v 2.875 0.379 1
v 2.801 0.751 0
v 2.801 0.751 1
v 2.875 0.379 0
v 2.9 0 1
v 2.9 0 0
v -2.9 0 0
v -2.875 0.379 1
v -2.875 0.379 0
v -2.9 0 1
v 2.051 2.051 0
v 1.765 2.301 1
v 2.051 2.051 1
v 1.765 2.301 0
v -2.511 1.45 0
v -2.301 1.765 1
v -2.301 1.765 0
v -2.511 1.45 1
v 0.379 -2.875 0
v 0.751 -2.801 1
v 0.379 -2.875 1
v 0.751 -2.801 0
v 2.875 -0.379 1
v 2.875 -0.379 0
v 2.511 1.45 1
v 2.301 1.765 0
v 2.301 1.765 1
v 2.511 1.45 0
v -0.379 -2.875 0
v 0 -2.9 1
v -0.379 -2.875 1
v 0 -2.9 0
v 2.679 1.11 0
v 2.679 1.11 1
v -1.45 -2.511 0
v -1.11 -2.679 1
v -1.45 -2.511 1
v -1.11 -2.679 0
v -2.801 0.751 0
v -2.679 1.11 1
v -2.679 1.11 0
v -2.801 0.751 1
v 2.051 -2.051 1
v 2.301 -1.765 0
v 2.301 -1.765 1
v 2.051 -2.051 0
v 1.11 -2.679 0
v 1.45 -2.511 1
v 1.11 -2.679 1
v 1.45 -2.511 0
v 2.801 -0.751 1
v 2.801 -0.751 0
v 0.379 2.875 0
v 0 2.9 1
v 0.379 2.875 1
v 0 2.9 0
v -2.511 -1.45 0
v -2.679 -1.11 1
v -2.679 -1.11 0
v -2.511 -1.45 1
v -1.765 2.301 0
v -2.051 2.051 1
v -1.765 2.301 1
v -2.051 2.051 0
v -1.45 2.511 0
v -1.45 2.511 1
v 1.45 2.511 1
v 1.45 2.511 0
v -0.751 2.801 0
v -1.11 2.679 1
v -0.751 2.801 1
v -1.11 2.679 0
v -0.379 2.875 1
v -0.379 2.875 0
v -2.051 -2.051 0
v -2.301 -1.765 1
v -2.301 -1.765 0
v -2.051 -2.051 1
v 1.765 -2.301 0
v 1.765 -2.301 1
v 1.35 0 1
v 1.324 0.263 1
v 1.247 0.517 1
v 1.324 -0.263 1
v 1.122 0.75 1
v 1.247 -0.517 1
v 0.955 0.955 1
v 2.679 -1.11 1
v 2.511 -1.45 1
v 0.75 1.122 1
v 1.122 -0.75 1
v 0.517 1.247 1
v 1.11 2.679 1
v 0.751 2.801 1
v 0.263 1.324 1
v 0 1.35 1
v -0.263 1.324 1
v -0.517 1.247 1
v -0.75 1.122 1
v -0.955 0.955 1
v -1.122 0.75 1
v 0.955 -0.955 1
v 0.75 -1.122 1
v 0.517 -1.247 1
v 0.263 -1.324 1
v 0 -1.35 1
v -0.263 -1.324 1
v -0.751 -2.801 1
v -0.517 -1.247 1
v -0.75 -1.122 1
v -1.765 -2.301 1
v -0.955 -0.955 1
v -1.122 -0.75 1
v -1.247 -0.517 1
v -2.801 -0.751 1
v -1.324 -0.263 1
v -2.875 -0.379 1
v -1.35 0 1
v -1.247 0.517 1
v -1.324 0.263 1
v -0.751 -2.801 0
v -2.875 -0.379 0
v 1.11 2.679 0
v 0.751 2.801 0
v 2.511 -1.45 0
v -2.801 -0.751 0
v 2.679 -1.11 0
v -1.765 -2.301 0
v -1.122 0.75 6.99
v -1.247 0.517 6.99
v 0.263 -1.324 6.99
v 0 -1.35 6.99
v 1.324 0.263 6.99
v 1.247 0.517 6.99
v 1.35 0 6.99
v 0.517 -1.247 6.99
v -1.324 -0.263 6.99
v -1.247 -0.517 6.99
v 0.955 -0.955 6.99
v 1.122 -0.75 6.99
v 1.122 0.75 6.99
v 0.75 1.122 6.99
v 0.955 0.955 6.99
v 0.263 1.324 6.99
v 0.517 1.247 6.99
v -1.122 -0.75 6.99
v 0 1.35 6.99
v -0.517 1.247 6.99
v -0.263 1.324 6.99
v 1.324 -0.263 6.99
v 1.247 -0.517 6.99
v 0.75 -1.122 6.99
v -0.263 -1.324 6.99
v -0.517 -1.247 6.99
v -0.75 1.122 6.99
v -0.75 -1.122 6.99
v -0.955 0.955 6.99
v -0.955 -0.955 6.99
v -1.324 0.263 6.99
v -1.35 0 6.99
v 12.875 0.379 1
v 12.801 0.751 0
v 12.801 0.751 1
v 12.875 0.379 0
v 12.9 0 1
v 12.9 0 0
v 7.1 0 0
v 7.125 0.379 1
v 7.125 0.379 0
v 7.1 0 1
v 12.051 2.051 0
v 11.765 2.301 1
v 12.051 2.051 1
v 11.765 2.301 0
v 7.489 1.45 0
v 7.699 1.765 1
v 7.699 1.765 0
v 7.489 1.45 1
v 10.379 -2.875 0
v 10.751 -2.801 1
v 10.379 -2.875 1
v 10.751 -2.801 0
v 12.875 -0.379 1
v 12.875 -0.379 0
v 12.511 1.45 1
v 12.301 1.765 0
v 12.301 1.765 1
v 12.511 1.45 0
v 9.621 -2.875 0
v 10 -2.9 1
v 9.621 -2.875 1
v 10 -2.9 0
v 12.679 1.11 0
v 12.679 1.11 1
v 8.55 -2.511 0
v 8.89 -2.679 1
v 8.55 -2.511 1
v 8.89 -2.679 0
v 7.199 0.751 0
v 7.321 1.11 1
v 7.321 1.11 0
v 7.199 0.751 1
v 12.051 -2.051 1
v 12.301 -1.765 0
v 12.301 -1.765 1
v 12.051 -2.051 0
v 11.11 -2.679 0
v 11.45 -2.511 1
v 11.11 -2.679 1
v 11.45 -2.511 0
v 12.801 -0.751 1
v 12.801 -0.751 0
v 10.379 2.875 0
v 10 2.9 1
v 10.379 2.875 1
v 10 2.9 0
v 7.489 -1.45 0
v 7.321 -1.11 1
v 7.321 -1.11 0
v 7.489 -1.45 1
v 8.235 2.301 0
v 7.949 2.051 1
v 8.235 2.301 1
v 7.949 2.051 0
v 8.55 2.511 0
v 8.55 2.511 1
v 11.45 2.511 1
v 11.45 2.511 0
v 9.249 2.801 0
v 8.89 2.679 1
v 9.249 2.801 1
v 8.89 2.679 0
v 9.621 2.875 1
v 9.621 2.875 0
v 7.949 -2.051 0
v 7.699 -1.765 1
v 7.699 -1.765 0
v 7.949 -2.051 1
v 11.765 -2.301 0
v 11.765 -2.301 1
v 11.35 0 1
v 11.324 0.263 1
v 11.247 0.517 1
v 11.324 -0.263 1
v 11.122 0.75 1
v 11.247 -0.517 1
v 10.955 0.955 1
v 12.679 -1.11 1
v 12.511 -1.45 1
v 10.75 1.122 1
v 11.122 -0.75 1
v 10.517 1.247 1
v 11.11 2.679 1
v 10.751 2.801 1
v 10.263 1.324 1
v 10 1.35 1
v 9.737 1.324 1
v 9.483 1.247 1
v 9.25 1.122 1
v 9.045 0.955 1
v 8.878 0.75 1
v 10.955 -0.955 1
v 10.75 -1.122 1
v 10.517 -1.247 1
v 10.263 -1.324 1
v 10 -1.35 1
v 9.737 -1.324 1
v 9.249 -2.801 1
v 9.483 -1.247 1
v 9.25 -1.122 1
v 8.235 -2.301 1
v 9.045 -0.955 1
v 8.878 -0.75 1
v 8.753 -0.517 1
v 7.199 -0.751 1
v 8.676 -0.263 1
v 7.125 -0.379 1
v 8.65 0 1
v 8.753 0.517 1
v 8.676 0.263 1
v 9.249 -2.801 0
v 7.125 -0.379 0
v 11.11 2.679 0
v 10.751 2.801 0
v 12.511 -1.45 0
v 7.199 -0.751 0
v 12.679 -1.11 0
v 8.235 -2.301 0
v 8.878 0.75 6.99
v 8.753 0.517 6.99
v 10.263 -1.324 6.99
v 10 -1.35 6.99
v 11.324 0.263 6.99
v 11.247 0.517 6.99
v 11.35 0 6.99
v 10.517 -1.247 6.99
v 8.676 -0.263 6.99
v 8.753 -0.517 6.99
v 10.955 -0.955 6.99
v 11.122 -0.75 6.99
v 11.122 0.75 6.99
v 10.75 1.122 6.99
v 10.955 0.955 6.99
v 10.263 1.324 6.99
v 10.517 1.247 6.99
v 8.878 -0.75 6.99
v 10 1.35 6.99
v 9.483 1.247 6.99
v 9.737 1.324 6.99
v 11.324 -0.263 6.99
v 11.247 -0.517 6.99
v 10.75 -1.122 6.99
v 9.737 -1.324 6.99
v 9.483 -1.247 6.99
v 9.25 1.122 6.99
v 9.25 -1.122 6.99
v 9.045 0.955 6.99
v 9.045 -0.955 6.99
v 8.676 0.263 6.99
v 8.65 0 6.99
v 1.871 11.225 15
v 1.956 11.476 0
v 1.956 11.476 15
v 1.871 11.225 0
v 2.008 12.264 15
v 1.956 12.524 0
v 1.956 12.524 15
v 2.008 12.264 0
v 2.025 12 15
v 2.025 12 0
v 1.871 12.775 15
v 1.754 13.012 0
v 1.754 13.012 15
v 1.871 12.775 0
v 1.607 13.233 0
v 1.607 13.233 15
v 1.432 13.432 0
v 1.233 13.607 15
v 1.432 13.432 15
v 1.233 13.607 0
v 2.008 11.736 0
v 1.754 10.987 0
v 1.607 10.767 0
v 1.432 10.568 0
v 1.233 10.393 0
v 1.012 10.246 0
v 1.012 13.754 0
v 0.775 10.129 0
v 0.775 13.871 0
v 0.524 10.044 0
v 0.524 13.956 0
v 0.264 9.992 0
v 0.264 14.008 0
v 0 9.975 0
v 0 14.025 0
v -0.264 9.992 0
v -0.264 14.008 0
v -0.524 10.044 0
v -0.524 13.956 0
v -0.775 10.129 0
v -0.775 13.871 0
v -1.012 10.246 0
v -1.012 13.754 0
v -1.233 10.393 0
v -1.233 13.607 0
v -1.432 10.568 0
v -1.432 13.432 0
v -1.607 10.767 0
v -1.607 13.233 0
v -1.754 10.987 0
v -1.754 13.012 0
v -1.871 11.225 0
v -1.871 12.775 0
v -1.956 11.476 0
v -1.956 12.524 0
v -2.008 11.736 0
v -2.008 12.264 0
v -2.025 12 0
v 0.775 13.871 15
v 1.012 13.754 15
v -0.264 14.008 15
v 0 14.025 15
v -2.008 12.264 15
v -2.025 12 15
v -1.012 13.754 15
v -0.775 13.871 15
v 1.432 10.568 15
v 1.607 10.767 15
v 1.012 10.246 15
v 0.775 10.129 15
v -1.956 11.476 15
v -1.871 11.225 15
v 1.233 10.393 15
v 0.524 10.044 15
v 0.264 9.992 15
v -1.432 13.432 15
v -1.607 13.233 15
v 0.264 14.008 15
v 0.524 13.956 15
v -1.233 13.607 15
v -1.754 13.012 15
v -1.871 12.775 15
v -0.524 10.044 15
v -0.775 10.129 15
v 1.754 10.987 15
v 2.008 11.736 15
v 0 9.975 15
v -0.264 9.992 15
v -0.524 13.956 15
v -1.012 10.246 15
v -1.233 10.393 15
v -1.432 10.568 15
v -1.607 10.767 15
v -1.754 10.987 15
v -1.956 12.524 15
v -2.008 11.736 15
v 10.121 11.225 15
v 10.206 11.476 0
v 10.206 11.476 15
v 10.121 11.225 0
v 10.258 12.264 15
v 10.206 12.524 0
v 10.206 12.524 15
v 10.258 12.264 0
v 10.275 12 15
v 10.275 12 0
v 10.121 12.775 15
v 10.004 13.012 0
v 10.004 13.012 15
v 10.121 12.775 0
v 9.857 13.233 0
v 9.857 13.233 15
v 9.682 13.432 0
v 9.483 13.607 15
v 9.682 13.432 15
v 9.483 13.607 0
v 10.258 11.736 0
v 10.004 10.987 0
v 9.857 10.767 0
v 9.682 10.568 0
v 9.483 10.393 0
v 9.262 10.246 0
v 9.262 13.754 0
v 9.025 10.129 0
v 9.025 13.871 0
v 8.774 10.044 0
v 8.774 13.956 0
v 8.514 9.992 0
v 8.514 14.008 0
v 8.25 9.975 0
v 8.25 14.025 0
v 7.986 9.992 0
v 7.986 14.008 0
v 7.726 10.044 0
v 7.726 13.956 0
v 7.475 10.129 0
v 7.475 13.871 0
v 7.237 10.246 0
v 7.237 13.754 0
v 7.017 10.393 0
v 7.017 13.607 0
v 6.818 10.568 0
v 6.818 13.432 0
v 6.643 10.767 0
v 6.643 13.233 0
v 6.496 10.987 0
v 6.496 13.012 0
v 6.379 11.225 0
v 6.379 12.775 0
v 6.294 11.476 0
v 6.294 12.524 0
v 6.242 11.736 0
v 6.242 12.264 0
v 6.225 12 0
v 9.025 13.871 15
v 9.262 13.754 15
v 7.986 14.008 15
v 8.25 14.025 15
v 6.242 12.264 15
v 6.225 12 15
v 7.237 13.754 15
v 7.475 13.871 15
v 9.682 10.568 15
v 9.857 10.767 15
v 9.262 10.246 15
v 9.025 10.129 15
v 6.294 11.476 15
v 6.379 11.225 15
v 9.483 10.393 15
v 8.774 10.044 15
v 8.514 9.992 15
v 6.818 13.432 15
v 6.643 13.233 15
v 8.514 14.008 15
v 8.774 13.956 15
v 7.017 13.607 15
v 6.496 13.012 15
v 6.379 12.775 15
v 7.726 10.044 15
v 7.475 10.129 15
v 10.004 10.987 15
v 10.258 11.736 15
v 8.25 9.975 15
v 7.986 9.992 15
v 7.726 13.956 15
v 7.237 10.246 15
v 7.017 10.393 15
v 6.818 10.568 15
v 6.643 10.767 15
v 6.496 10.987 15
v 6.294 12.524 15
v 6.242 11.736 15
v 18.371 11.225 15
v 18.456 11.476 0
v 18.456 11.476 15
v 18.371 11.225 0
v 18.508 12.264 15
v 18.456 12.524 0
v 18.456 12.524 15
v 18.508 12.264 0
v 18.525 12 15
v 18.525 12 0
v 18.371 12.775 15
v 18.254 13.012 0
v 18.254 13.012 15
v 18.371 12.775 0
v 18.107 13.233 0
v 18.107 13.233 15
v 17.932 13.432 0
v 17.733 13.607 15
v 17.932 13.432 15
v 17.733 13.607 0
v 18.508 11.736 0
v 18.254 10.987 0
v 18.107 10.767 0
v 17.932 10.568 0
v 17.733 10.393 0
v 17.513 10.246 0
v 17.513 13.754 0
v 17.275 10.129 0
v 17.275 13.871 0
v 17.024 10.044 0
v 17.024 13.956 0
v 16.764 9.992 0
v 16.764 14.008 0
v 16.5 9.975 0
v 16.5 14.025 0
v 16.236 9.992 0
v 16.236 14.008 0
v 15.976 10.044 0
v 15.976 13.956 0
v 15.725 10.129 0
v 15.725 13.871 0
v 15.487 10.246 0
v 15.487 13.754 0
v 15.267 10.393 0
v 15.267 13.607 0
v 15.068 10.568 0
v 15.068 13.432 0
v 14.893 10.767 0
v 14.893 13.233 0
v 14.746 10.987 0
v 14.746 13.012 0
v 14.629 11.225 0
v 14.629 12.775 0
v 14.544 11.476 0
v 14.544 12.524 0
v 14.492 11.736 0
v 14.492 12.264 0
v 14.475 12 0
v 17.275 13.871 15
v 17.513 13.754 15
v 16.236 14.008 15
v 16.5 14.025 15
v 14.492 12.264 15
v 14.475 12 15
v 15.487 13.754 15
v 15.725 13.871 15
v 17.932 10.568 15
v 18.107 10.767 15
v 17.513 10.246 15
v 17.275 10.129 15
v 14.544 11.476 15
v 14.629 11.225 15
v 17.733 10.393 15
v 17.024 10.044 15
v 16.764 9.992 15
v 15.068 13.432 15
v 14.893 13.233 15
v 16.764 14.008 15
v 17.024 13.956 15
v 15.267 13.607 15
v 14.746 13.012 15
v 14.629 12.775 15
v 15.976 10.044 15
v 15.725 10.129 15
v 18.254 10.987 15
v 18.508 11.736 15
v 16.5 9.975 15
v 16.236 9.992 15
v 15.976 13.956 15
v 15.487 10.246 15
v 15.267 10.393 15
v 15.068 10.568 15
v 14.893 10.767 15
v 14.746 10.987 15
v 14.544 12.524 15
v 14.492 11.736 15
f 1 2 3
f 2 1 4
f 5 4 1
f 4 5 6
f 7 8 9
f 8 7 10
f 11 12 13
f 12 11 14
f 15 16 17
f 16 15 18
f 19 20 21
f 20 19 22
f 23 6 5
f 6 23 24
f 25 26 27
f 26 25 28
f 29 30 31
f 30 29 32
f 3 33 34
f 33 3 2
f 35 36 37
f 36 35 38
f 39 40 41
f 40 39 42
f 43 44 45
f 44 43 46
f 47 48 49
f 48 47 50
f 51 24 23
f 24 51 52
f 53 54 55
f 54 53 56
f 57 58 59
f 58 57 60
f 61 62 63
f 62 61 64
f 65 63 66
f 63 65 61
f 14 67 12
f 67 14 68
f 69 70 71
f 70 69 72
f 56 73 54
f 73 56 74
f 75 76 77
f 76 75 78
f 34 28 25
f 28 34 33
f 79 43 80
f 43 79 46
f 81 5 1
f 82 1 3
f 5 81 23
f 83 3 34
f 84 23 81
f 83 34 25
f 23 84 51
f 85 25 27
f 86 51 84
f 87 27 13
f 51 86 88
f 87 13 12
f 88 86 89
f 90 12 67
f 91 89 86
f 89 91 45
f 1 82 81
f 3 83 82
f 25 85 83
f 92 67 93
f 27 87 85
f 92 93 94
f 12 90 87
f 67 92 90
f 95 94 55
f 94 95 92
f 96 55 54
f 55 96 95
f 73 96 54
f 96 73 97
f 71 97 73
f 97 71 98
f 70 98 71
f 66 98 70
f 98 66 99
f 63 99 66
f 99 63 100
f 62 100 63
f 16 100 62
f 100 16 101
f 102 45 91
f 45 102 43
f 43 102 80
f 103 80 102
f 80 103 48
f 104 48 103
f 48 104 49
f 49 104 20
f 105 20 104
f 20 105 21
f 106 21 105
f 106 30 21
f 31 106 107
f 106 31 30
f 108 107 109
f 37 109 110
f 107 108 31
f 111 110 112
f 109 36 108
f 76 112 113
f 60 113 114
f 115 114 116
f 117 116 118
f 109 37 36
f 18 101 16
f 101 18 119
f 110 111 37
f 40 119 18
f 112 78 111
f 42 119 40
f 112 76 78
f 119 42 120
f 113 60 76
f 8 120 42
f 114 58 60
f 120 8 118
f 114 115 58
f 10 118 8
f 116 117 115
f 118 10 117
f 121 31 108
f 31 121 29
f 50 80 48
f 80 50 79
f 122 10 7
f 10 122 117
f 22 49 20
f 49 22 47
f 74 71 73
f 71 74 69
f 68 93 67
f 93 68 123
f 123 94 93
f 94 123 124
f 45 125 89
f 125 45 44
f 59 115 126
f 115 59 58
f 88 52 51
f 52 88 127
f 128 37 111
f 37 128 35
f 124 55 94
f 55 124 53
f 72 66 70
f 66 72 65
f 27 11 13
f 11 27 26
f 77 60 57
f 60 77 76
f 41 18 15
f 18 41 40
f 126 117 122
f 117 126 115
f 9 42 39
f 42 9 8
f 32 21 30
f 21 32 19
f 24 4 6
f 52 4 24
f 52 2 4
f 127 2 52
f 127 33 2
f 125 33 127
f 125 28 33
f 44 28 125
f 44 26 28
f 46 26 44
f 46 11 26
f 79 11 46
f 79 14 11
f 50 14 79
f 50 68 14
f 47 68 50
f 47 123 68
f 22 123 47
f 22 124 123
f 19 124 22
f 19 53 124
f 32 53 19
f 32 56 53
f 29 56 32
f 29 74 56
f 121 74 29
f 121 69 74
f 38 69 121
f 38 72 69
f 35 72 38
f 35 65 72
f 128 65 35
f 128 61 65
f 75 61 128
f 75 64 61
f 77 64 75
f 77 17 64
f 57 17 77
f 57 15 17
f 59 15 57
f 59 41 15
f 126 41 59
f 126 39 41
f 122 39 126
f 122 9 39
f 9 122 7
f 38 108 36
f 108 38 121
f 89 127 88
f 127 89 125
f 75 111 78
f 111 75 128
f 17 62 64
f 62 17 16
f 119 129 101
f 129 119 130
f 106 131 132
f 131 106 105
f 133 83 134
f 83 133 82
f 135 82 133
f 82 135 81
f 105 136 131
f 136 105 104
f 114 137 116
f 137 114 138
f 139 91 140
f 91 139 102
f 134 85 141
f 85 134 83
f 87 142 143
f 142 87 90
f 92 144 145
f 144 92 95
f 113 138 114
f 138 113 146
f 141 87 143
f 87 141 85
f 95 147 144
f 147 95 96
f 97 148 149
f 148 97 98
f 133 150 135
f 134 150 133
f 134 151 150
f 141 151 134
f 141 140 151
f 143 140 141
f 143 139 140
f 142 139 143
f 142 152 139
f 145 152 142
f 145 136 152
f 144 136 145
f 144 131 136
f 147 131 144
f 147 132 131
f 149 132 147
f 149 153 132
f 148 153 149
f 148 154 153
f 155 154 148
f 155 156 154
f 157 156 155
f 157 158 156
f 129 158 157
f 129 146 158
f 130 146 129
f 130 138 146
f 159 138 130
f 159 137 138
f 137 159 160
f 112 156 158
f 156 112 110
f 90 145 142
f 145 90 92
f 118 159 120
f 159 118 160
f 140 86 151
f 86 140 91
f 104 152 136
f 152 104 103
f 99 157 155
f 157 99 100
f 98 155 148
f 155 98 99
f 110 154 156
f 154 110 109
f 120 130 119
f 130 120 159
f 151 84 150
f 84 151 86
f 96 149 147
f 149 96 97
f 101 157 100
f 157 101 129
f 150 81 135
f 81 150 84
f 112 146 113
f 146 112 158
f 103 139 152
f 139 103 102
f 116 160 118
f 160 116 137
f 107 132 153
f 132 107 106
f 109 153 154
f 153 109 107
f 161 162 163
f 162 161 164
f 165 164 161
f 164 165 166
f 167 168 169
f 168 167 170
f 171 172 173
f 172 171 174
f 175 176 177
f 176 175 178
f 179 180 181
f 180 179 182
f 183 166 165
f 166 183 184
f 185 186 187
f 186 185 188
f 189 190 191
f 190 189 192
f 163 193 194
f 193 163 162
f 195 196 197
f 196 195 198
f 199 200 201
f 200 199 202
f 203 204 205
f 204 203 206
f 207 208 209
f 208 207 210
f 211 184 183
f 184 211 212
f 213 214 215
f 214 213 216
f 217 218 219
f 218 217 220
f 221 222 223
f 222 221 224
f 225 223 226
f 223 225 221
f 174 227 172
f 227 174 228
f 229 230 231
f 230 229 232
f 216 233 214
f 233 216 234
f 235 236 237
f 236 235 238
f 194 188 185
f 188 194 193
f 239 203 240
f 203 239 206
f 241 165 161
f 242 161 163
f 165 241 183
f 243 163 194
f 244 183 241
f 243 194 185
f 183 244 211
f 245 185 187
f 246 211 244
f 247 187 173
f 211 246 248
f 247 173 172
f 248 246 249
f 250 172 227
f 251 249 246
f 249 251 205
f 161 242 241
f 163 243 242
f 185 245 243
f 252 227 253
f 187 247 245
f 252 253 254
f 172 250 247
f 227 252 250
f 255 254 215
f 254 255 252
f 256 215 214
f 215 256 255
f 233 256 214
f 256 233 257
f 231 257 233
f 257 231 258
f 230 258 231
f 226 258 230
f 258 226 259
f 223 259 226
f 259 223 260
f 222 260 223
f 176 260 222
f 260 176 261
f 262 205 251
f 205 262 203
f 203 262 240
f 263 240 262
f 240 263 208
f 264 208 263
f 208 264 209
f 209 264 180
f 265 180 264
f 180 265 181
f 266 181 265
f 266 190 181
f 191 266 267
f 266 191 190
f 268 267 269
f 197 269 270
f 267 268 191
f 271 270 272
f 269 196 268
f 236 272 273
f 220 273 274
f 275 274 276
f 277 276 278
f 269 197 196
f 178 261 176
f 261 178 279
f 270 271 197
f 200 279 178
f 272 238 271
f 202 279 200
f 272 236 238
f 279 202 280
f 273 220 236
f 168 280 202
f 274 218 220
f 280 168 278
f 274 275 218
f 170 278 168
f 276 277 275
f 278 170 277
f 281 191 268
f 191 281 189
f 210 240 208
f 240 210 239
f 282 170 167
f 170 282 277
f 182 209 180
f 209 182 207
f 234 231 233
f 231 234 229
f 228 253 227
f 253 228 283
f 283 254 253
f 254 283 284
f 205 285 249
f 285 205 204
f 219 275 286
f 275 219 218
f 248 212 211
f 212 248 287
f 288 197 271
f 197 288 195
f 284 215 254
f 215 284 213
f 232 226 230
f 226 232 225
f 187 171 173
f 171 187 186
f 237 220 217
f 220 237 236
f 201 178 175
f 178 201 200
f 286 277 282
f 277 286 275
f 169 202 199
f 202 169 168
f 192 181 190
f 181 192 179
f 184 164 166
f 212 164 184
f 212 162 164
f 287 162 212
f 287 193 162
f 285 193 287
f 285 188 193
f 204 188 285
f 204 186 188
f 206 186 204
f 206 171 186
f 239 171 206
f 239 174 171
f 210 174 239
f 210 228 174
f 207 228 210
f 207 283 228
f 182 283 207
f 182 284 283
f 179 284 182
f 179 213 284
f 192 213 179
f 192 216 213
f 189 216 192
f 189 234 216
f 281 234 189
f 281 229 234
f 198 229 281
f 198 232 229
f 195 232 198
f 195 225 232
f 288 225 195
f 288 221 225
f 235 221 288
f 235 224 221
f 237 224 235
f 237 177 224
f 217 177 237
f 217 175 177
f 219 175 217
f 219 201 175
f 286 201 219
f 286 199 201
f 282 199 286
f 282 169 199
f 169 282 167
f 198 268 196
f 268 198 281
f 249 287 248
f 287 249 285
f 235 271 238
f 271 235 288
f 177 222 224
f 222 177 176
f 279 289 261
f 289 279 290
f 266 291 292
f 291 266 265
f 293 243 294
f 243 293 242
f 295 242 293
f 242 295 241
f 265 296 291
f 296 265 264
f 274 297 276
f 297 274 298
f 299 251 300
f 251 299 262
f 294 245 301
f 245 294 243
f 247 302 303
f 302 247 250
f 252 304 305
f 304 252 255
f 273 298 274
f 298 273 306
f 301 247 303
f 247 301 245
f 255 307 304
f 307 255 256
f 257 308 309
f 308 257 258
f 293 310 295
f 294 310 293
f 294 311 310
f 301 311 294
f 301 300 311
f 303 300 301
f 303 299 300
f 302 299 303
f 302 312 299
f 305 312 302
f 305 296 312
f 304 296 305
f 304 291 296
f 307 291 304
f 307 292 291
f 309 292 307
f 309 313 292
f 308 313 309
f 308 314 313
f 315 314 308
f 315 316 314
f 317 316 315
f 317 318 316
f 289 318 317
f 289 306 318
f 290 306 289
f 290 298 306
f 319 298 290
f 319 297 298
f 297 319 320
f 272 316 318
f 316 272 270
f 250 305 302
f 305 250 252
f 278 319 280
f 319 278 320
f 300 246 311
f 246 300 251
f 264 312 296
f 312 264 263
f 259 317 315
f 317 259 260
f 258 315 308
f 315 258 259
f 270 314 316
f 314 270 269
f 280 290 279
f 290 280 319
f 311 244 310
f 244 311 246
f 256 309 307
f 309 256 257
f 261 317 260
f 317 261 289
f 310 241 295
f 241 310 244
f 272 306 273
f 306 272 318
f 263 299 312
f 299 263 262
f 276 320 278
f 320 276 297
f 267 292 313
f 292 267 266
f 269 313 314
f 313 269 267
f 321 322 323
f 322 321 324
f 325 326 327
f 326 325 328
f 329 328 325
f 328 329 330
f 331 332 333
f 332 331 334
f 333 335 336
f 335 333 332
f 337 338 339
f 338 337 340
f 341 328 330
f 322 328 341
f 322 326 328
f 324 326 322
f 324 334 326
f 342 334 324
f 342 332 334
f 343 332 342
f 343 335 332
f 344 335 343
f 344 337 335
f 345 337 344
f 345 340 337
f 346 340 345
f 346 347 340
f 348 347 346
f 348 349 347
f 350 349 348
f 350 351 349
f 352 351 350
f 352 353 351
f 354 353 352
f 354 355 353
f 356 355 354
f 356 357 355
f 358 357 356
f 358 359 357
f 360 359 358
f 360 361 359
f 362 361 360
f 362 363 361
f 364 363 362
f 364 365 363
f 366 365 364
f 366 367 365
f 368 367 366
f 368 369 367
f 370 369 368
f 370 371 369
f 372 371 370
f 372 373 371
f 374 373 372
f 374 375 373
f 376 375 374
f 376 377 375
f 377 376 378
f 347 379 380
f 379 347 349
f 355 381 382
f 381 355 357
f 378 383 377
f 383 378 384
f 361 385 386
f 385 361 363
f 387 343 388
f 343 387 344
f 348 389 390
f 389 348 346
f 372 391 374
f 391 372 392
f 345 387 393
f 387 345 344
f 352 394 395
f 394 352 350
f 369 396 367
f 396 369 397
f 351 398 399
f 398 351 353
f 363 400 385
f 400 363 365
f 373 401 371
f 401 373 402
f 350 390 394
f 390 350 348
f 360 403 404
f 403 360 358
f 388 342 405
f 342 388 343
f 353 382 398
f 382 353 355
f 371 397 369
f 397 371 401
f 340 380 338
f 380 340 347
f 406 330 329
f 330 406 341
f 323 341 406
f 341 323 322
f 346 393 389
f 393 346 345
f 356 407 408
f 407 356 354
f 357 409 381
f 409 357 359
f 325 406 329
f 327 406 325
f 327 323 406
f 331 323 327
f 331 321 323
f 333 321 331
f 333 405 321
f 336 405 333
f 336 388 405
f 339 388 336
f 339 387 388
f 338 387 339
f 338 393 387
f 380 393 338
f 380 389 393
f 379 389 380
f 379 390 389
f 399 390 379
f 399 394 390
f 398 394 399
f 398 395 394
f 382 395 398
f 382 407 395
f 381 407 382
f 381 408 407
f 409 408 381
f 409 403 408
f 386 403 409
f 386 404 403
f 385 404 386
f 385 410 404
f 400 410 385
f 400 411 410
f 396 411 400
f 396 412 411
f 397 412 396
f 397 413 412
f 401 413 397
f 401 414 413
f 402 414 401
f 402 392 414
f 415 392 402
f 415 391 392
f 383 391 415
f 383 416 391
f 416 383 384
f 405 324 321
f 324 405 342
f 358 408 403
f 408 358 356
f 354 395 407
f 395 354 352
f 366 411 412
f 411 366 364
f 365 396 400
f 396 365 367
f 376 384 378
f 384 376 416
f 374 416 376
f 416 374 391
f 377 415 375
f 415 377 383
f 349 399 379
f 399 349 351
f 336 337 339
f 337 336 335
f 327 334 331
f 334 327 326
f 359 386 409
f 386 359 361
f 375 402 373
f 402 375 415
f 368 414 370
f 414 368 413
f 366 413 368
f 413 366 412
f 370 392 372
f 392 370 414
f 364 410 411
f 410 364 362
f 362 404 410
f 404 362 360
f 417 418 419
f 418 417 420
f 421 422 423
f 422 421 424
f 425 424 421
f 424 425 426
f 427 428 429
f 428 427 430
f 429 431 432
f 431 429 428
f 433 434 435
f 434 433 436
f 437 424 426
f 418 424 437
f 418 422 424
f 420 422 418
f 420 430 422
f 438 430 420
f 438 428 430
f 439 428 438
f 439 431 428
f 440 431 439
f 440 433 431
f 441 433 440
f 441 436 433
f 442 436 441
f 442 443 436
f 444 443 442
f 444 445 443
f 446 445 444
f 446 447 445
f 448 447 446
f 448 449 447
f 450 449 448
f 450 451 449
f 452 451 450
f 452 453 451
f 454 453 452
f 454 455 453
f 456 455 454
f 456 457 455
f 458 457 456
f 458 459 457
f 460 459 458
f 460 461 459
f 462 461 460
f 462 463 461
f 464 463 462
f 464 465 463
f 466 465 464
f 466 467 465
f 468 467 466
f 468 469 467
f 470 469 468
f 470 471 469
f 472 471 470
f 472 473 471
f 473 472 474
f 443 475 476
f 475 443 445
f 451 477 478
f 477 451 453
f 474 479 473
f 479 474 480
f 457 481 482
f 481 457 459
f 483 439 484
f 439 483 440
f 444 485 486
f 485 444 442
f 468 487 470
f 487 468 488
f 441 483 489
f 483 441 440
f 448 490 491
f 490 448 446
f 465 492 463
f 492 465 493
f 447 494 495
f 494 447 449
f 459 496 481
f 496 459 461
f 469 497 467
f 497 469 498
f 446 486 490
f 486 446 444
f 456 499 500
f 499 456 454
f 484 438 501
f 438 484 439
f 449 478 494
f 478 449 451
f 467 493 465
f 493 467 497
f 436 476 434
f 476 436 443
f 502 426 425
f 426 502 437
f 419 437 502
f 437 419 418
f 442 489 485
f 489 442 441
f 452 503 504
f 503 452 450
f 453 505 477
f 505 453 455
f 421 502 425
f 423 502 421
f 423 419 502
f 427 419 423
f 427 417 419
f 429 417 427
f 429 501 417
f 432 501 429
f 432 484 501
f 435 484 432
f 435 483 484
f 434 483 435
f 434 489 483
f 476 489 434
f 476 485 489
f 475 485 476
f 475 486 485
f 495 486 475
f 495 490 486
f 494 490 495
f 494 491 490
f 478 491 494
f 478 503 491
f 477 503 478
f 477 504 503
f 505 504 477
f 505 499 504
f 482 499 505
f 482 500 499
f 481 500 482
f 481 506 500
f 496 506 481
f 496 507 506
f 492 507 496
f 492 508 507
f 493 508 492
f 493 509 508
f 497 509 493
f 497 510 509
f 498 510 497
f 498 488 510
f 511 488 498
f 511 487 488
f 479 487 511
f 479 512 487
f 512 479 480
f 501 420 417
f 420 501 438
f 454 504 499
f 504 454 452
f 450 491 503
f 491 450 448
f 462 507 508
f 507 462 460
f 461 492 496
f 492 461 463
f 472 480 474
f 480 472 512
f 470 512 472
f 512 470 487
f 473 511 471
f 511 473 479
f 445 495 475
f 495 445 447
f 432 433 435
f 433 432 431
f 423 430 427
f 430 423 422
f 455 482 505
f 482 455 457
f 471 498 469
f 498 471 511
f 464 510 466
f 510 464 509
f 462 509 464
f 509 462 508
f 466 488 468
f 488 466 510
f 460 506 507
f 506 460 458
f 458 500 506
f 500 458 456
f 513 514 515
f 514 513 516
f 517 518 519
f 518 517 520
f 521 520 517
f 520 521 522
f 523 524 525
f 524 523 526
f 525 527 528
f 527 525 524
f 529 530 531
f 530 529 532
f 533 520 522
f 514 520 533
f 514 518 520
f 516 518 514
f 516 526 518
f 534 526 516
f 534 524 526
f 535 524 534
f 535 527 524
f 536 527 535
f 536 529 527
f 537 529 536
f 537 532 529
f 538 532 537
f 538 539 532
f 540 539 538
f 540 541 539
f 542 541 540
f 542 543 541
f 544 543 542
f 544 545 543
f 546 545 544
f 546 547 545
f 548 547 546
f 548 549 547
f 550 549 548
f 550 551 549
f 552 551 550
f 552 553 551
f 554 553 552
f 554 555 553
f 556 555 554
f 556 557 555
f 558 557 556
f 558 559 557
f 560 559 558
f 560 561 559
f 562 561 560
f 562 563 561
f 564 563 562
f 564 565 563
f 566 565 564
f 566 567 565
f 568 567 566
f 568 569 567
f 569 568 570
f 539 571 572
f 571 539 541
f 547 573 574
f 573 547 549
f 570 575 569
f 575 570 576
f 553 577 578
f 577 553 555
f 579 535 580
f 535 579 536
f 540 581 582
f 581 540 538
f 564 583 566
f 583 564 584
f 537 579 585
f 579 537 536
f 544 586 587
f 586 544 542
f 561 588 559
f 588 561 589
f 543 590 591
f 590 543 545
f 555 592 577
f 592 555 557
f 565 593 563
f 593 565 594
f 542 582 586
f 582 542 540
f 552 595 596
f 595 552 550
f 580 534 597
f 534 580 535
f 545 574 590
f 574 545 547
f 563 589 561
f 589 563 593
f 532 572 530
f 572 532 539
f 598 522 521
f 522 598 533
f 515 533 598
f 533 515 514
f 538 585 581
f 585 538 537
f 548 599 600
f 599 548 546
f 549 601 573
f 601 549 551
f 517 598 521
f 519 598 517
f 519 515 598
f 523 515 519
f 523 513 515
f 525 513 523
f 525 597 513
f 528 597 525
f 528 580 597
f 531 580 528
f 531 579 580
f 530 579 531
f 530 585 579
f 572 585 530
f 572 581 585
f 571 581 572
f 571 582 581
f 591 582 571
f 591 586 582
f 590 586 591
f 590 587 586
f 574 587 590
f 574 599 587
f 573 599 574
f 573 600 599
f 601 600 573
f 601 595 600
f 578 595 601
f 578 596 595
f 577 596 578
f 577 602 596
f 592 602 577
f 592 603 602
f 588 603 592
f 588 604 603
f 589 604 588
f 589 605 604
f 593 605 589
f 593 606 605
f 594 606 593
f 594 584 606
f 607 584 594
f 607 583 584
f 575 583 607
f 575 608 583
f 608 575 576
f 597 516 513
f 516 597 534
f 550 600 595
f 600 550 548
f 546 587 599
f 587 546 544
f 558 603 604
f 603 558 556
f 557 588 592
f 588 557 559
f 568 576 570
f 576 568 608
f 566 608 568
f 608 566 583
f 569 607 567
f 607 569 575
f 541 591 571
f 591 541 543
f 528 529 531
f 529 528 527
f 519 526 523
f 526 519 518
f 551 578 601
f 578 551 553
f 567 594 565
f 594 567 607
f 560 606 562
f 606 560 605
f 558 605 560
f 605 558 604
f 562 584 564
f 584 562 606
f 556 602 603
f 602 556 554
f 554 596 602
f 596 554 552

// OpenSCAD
// Separately printed inserts for the Griffin Jr. case: button caps (silver) and light pipes
// (clear or white). case.scad calls inserts() with its own dimensions; this file can also be
// rendered alone for a quick look.
//
//   openscad -D 'part="inserts"' --export-format binstl -o stl/inserts.stl case.scad

// cap: a disc the size of the pressor column with a shaft that glues into the pressor's hole
module button_cap(pressor_d, shaft_d, cap_t = 1.0, shaft_len = 6) {
    cylinder(d = pressor_d - 0.2, h = cap_t, $fn = 48);
    translate([0, 0, cap_t - 0.01]) cylinder(d = shaft_d - 0.3, h = shaft_len, $fn = 32);
}

// light pipe: a rod for the lid's bore, flush with the lid top; trim at the bottom to taste
module light_pipe(pipe_in, length) cylinder(d = pipe_in - 0.2, h = length, $fn = 48);

module inserts(pressor_d, shaft_d, pipe_in, pipe_len, n_buttons, n_leds) {
    for (i = [0 : n_buttons - 1]) translate([i * (pressor_d + 4), 0, 0]) button_cap(pressor_d, shaft_d);
    for (i = [0 : n_leds - 1])    translate([i * (pipe_in + 4), pressor_d + 6, 0]) light_pipe(pipe_in, pipe_len);
}

inserts(6, 3.0, 4.25, 15, 2, 3);
